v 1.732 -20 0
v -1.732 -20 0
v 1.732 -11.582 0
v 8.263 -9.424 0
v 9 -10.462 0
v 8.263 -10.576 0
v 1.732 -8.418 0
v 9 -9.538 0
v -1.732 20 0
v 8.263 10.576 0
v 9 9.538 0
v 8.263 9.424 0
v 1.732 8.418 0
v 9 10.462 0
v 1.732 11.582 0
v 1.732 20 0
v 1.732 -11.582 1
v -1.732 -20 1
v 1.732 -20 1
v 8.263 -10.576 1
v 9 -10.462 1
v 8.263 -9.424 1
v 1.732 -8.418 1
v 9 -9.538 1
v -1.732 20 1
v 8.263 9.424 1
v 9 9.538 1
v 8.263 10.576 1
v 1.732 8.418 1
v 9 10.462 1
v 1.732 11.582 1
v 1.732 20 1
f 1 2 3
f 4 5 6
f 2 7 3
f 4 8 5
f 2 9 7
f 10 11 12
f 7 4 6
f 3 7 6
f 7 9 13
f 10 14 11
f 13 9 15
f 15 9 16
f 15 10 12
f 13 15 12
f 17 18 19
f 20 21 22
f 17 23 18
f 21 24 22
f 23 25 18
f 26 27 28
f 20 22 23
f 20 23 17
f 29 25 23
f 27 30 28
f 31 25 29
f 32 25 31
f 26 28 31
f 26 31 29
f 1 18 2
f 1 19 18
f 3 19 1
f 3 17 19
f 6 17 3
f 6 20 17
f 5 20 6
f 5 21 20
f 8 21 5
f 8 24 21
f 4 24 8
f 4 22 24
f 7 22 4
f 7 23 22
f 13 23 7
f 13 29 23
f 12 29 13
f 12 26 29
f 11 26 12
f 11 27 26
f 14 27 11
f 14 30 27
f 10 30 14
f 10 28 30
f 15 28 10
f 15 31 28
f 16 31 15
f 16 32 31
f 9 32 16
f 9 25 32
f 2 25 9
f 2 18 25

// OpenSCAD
linear_extrude(height=1)
projection(cut = true) rotate([0,90,0])
{
translate([0,20,0]) rotate([90,0,0]) cylinder(r=2, h=40, $fn=6);

translate([0,-10,0]) cylinder(r1=2,r2=0.5, h=9);
translate([0,10,0]) cylinder(r1=2,r2=0.5, h=9);
}
